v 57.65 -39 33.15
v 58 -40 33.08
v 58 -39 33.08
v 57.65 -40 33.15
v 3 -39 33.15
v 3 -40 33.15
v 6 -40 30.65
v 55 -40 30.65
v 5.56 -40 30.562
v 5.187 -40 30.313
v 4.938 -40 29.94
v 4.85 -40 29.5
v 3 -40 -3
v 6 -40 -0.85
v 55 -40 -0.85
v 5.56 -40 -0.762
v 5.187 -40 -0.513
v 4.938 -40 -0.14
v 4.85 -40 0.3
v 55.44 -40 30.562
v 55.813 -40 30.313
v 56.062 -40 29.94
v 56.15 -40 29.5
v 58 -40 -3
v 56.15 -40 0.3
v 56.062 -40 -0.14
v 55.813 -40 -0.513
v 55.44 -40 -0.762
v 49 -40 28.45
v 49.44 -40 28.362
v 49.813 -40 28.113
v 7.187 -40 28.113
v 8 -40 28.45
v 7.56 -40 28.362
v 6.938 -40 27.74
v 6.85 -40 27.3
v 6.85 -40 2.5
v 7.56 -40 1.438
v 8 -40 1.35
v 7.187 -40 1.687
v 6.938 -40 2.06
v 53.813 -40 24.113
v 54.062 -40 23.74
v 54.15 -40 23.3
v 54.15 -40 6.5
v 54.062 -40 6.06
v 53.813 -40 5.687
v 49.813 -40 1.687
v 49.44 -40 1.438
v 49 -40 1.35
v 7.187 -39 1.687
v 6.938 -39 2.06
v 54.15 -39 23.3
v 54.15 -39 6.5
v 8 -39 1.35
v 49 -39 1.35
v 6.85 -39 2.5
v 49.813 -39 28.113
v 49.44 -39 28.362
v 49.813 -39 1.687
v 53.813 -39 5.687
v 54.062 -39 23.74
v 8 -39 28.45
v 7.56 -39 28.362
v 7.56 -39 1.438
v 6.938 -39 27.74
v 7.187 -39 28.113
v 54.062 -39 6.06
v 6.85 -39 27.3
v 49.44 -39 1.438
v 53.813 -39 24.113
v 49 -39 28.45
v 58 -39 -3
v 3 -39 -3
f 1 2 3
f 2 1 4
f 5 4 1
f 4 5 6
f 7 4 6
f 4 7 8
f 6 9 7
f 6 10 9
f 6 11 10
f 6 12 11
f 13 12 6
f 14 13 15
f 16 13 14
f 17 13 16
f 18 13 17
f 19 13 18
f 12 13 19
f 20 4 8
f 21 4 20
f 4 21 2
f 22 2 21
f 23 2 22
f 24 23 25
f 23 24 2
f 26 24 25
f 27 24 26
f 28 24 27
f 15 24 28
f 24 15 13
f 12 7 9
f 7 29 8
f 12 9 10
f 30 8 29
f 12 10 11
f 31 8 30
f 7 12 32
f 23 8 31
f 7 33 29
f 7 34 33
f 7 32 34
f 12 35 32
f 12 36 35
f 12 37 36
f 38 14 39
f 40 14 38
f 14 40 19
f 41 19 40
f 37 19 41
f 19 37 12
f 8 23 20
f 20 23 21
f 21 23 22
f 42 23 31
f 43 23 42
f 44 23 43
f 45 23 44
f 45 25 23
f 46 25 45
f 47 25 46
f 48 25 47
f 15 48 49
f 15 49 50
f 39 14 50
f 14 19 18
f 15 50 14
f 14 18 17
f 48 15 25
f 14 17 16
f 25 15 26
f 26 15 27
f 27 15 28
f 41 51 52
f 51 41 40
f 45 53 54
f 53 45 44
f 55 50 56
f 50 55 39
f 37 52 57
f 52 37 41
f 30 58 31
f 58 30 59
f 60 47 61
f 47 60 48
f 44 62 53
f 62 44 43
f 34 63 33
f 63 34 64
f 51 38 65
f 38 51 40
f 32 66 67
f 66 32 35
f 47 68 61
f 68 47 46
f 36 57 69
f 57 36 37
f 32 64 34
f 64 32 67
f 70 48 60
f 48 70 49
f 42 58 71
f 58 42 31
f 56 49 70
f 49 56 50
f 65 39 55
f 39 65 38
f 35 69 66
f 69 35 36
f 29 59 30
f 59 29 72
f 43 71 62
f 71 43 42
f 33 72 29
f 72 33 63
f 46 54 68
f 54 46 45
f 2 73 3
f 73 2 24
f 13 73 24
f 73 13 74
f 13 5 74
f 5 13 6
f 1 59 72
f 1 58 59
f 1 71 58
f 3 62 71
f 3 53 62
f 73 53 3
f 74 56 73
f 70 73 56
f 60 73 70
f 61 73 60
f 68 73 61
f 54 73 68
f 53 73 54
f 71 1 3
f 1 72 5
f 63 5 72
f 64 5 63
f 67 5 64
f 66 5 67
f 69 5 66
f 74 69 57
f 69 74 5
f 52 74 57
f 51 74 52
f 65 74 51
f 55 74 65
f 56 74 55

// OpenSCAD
// file: xt.scad
e=.001;
$fn=16;

xt60_w=15.7;
xt60_h=8;
xt60f_d = 15.7;
xt60f_base_d = 8;
xt60_combined_d=24.1;
xt60_pitch=7;
xt60_chamfer=2.5;
xt60f_pin_d=5.7;
xt60m_pin_d=4.7;
xt60_pin_w=4.5;
xt60_hole_w=4.5;
xt60_corner=.5;

module xt_pins(width, height, pitch)
{
	for (p=[-pitch/2, pitch/2])
	translate([p,0,0])
	cylinder(h=height, r=width/2);
}

module xt_base(w, h, d, chamfer, corner, margin=0, e=0)
{
	w = w-2*corner;
	h = h-2*corner;
	r = corner+margin;
	translate([0,0,-e])
    linear_extrude(d+2*e)
	hull()
    for (p=[ [w/2,-h/2],
	         [-w/2+chamfer, -h/2],
	         [-w/2, -h/2+chamfer],
	         [-w/2, h/2-chamfer],
	         [-w/2+chamfer, h/2],
	         [w/2, h/2]
	])
	translate(p)
	circle(r);
}

module xt60_combined_shell_cutout(margin=0,f_margin=-1,m_margin=-1, e=0)
{
	b=1; 
	xt_base(xt60_w, xt60_h, xt60_combined_d, xt60_chamfer, xt60_corner, margin, e);
	if (f_margin > margin)
	hull()
	{
		xt_base(xt60_w, xt60_h, xt60f_base_d, xt60_chamfer, xt60_corner, f_margin, e);
		translate([0,0,xt60f_base_d])
		xt_base(xt60_w, xt60_h, f_margin-margin, xt60_chamfer, xt60_corner, margin, e);
	}
	if (m_margin > margin)
	hull()
	{
		translate([0,0,xt60f_base_d-(m_margin-margin)])
		xt_base(xt60_w, xt60_h, m_margin-margin, xt60_chamfer, xt60_corner, margin, e);
		translate([0,0,xt60f_base_d])
		xt_base(xt60_w, xt60_h, xt60_combined_d-xt60f_base_d, xt60_chamfer, xt60_corner, m_margin, e);
	}
}


module xt60_combined_cutout(margin=0,f_margin=-1,m_margin=-1, e=0)
{
	b=1; 
	xt60_combined_shell_cutout(margin,f_margin,m_margin, e);

	translate([0, 0, -xt60f_pin_d-margin])
	xt_pins(xt60_pin_w+margin*2, xt60f_pin_d+b+margin, xt60_pitch);

	translate([0, 0, xt60_combined_d-b])
	xt_pins(xt60_pin_w+margin*2, xt60m_pin_d+b+margin, xt60_pitch);
}

module xt60f_cutout(margin=0,f_margin=-1,m_margin=-1,e=0)
{
	translate([0,0,-xt60f_d])
	xt60_combined_cutout(margin,f_margin,m_margin,e);
}

module xt60f_shell_cutout(margin=0,f_margin=-1,m_margin=-1,e=0)
{
	translate([0,0,-xt60f_d])
	xt60_combined_shell_cutout(margin,f_margin,m_margin,e);
}

module xt60f()
{
	b=1;
	translate([0,0,-xt60f_d])
	{
		xt_base(xt60_w, xt60_h, xt60f_base_d, xt60_chamfer, xt60_corner, 0, e);

		translate([0,0,b])
		difference()
		{
			xt_base(xt60_w-2*xt60_corner, xt60_h-2*xt60_corner, xt60f_d-b, xt60_chamfer, xt60_corner, 0, e);
			xt_pins(xt60_hole_w, xt60f_d, xt60_pitch);

		}

		difference()
		{
			translate([0, 0, -xt60f_pin_d])
			xt_pins(xt60_pin_w, xt60f_pin_d+b, xt60_pitch);

			translate([0, 0, -xt60f_pin_d-b])
			xt_pins(xt60_pin_w*.8, xt60f_pin_d+b, xt60_pitch);
		}
	}
}

xt60f();
%xt60f_cutout(margin=.4,m_margin=1,e=e);
// file: power_shield.scad
use <utils.scad>
use <grid.scad>

use <mw_lrs.scad>
use <powerplug.scad>
use <xt.scad>

$fn=16;
e=.001;


margin=.15;
shield_thickness=1.;
shield_bottom=.6;

border_w=51;
border_h=31.2;
border_d=3.5;

w=47;
h=26.8;
d=22;
chamf=4;


flap_a_w=10;
flap_a_x=4;

flap_b_w=7;
flap_b_x=33;

flap_h=1;
flap_latch=.8;

corner=1;

module plug_keepout(margin=0, depth=39, e=0)
{
	$fn=16;

	d = .1+e;
	border_w = border_w-2*corner;
	border_h = border_h-2*corner;
	w = w-2*corner;
	h = h-2*corner;
	r = corner+margin;
	off = 16.5;

	color([.3,.3,.3])
	translate([corner,depth-.1,corner])
	rotate([90,0,0])
	{
		translate([(border_w-w)/2,0,-d])
		linear_extrude(d+e)
		hull()
		for (p=[ [off, 0],
		         [off, h],
		         [w-chamf, h],
		         [w, h-chamf],
		         [w, chamf],
		         [w- chamf, 0],
		])
		translate(p)
		circle(r);
	}
}

module plug_hull(margin, d, e=0)
{
	hull()
	{
		difference()
		{
		plug(margin=margin, extra_depth=5+shield_bottom);
		translate([-10,-10,-10])
		cube([100, 30, 100]);
		}
		plug_keepout(margin=margin, depth=d, e=0);
	}
	plug_keepout(margin=margin, depth=d, e=e);
	
}

inner_w=.8;

module power_shield()
{
color("red")
	union()
	{
	difference()
	{
		union()
		{
			plug_hull(margin=margin+shield_thickness, d=39);
		}
		union()
		{
		plug_hull(margin=margin, d=38, e=2);
		}
	}

	intersection()
	{
		plug_hull(margin=margin+shield_thickness/2, d=38.5, e=2);
		difference()
		{
			union()
			{
				translate([(border_w-w)/2+8.5-inner_w/2, 22, h/2-4-inner_w/2])
				cube([inner_w, 20, 20]);

				translate([(border_w-w)/2+8.5, 22, h/2-4-inner_w/2])
				cube([9., 17, inner_w]);

				translate([(border_w-w)/2+17.5-inner_w/2, 22, h/2-4-inner_w/2])
				cube([inner_w, 17, 10]);

				translate([(border_w-w)/2+15-inner_w/2, 38.4, h/2-4-inner_w/2])
				cube([2.5, shield_bottom, 10]);

				for (y=[0,h])
				for (x=[0,w-2])
				translate([(border_w-w)/2+x-5/sqrt(2)-inner_w/2, 22, y])
				rotate([0,45,0])
				cube([5,1,5]);

			}
			translate([(border_w-w)/2+6.5-inner_w/2, 21, h/2-6/2-inner_w/2])
			cube([5, 2, 5.5]);
		}
	}
}
}

power_shield();

//preview()
//plug();
// file: powerplug.scad
e=0.001;

border_w=51;
border_h=31.2;
border_d=3.5;

w=47;
h=26.8;
d=22;
chamf=4;


flap_a_w=10;
flap_a_x=4;

flap_b_w=7;
flap_b_x=33;

flap_h=1;
flap_latch=.8;

corner=1;

module plug(margin=0, extra_depth=0)
{
	$fn=16;

	d = d+extra_depth;
	border_w = border_w-2*corner;
	border_h = border_h-2*corner;
	w = w-2*corner;
	h = h-2*corner;
	r = corner+margin;

	color([.3,.3,.3])
	translate([corner,0,corner])
	rotate([90,0,0])
	{
		translate([0,(h-border_h)/2,0])
		linear_extrude(border_d+margin)
		hull()
		for(p=[ [0, 0],
		        [0, border_h],
		        [border_w, border_h],
		        [border_w, 0]
		])
		translate(p)
		circle(r);

		translate([(border_w-w)/2,0,-d])
		linear_extrude(d+e)
		hull()
		for (p=[ [0, 0],
		         [0, h],
		         [w-chamf, h],
		         [w, h-chamf],
		         [w, chamf],
		         [w- chamf, 0],
		])
		translate(p)
		circle(r);
	}
}

module plug_latch(margin=0)
{
	rotate([90,0,0])
	rotate([0,90,0])
	linear_extrude(9)
	{
		polygon([ [0, -1], [0, 1+margin], [9, margin]]);
	}
}

module plug_latches(margin=0)
{
	for (x=[9.5,32])
	for (y_flip=[-1, 1])
	translate([(border_w-w)/2+x,1.8, h/2])
	scale([1,1,y_flip])
	translate([0,0,h/2])
	plug_latch(margin);
}

plug();

plug_latches()

%plug(margin=.3);
// file: mw_lrs.scad
e=.001;
$fn=16;

mw_lrs_w=115;
mw_lrs_h=30;
mw_lrs_d=215;


mw_lrs_holes_pitch_d  = 150;
mw_lrs_holes_pitch_w  = 50;
mw_lrs_holes_height_h = 12.5;

mw_lrs_gap_h = 23;
mw_lrs_gap_d = 18.5;

mw_lrs_case_thickness = 1.6;

m4_thread = 4;

mw_lrs_screw_terminal_x=8.5;
mw_lrs_screw_terminal_w=88;
mw_lrs_screw_terminal_d=15;
mw_lrs_screw_terminal_h=15;
mw_lrs_screw_terminal_pitch = 9.5;
mw_lrs_screw_terminal_gap_w = 8;
mw_lrs_screw_terminal_gap_d = 14;
mw_lrs_screw_terminal_gap_z = 7;
mw_lrs_screw_terminal_gap_h = 6;

module mw_lrs_side_holes()
{
	translate( [0, 0, mw_lrs_holes_height_h] )
	for( r = [ 0, 180 ] )
	rotate( [0, r, 0] )
	for( y = [ (mw_lrs_d-mw_lrs_holes_pitch_d)/2, (mw_lrs_d+mw_lrs_holes_pitch_d)/2 ] )
	translate( [-mw_lrs_w/2, y, 0] )
	rotate( [0, 90, 0] )
	children();
}

module mw_lrs_bottom_holes()
{
	for( x = [ -mw_lrs_holes_pitch_w/2, mw_lrs_holes_pitch_w/2 ] )
	for( y = [ (mw_lrs_d-mw_lrs_holes_pitch_d)/2, (mw_lrs_d+mw_lrs_holes_pitch_d)/2 ] )
	translate( [x, y, 0] )
	children();
}

module mw_lrs_holes()
{
	mw_lrs_side_holes() children();
	mw_lrs_bottom_holes() children();
}

module mw_lrs_screw_terminal()
{
	colors = [
		"red", "red", "red",
		"black", "black", "black",
		"green", "blue", "brown",
	];
	b=1;
	translate([mw_lrs_screw_terminal_x, mw_lrs_case_thickness, mw_lrs_h-mw_lrs_gap_h-e])
	{
		difference()
		{
			translate([-mw_lrs_screw_terminal_w/2, 0, 0])
			cube([mw_lrs_screw_terminal_w, mw_lrs_screw_terminal_d, mw_lrs_screw_terminal_h+e]);
			for (i=[0:8])
			translate([(i-4)*9.5-mw_lrs_screw_terminal_gap_w/2, -b, mw_lrs_screw_terminal_gap_z])
			cube([mw_lrs_screw_terminal_gap_w, mw_lrs_screw_terminal_gap_d+b, mw_lrs_screw_terminal_gap_h]);
		}

		for (i=[0:8])
		translate([(i-4)*9.5-mw_lrs_screw_terminal_gap_w/2, -0, mw_lrs_screw_terminal_h])
		color(colors[i])
		cube([mw_lrs_screw_terminal_gap_w,mw_lrs_screw_terminal_gap_d,.1]);

	}
}

module mw_lrs_vents()
{
	b=1;
	hole=4;
	for (y = [36, 44, 52])
	for (i = [-1, 1])
	hull()
	{
		translate([i*(19/2+hole/2), y, mw_lrs_h-mw_lrs_case_thickness-b])
			cylinder(mw_lrs_case_thickness+2*b, r=hole/2);

		translate([i*(19/2+hole/2+33), y, mw_lrs_h-mw_lrs_case_thickness-b])
			cylinder(mw_lrs_case_thickness+2*b, r=hole/2);
	}

	translate([-mw_lrs_w/2+36.7, mw_lrs_d-47.45,mw_lrs_h-mw_lrs_case_thickness-b])
		cylinder(mw_lrs_case_thickness+2*b, r=50/2);
}

module mw_lrs_vents_keepout(h, margin=0)
{
	b=1;
	hole=4;
	hull()
	for (y = [36, 44, 52])
	for (i = [-1, 1])
	{
		translate([i*(19/2+hole/2), y, mw_lrs_h-b])
			cylinder(h+b, r=hole/2+margin);

		translate([i*(19/2+hole/2+33), y, mw_lrs_h-b])
			cylinder(h+b, r=hole/2+margin);
	}

	translate([-mw_lrs_w/2+36.7, mw_lrs_d-47.45,mw_lrs_h-b])
		cylinder(h+b, r=50/2);
}

module mw_lrs()
{
	b=1; 

	union()
	{
		color([.75,.75,.75])
		difference()
		{

			translate([-mw_lrs_w/2,0,0])
			cube([mw_lrs_w, mw_lrs_d, mw_lrs_h]);

			union()
			{
				translate([-mw_lrs_w/2+mw_lrs_case_thickness, -b, mw_lrs_h-mw_lrs_gap_h] )
				cube( [ mw_lrs_w-2*mw_lrs_case_thickness, b+mw_lrs_gap_d, mw_lrs_gap_h+b] );

				translate([-mw_lrs_w/2+mw_lrs_case_thickness, mw_lrs_gap_d-e, mw_lrs_h-mw_lrs_gap_h] )
				cube( [ mw_lrs_w-2*mw_lrs_case_thickness, mw_lrs_d-mw_lrs_gap_d+e-mw_lrs_case_thickness, mw_lrs_gap_h-mw_lrs_case_thickness] );

				mw_lrs_vents();

				mw_lrs_holes()
				{
					translate([0,0,-e])
					cylinder(h=5+e, r=m4_thread/2);
				}
			}
		}
		color([.1, .3, .1])
		translate([-mw_lrs_w/2+mw_lrs_case_thickness, 0, mw_lrs_h-mw_lrs_gap_h-e])
		cube([mw_lrs_w-2*mw_lrs_case_thickness, mw_lrs_d-mw_lrs_case_thickness, e+.1]);
		mw_lrs_screw_terminal();
	}
}

module mw_lrs_keepout(margin=0, e=0)
{
	b=1; 

	w=mw_lrs_w+margin*2;
	d=mw_lrs_d+margin*2;
	h=mw_lrs_h+margin*2;

	translate([-w/2,-margin,-margin])
	cube([w, d, h]);
}

mw_lrs();
%mw_lrs_keepout(margin=.4);

module m4_hole(h)
{
	translate([0,0,-h])
	cylinder(h=h+e, r=m4_thread/2);
}

%mw_lrs_holes()
m4_hole(10);
// file: grid.scad
module bars(width, height, n, pitch, bar_width)
{
	for (i=[0:n-1])
		translate([0, (i-(n-1)/2)*pitch-bar_width/2, 0])
			cube([width, bar_width, height]);
}

module grid(width, depth, height, n_rows, n_cols, pitch=10, x_pitch=-1, y_pitch=-1, bar_width=1, x_bar_width=-1, y_bar_width=-1)
{
	x_pitch = x_pitch > 0 ? x_pitch : pitch;
	y_pitch = y_pitch > 0 ? y_pitch : pitch;
	x_bar_width = x_bar_width > 0 ? x_bar_width : bar_width;
	y_bar_width = y_bar_width > 0 ? y_bar_width : bar_width;

	translate( [0, depth/2, 0] )
		bars( width, height, n_rows, y_pitch, y_bar_width );
	translate( [width/2, 0, 0] )
		rotate([0,0,90])
			bars( depth, height, n_cols, x_pitch, x_bar_width) ;
}

grid(100, 50, 1, 4, 8);
// file: utils.scad
module xz_toward_y()
{
	scale([1, 1, -1])
	rotate([-90,0,0])
	children();
}

module anchor(dim, anchor=[0,0,0])
{
	translate([-(1+anchor.x)*dim.x/2, -(1+anchor.y)*dim.y/2, -(1+anchor.z)*dim.z/2])
	children();
}

module block(dim, anchor=[0,0,0])
{
	anchor(dim, anchor)
	cube(dim);
}

module rounded_block_z(dim, anchor=[0,0,0], r=0)
{
	anchor(dim, anchor)
	linear_extrude(dim.z)
	hull()
	for (p=[ [r,r], [dim.x-r, r], [dim.x-r, dim.y-r], [r, dim.y-r] ] )
	translate(p)
	circle(r);
}

module rounded_block_y(dim, anchor=[0,0,0], r=0)
{
	anchor(dim, anchor)
	xz_toward_y()
	linear_extrude(dim.y)
	hull()
	for (p=[ [r,r], [dim.x-r, r], [dim.x-r, dim.z-r], [r, dim.z-r] ] )
	translate(p)
	circle(r);
}

module chamfer_block_y(dim, anchor=[0,0,0], r=0)
{
	anchor(dim, anchor)
	hull()
	{
		translate([r,0,0])
		cube([dim.x-r*2, dim.y, dim.z]);

		translate([0,0,r])
		cube([dim.x, dim.y, dim.z-r*2]);
	}
}

module chamfer_block_z(dim, anchor=[0,0,0], r=0)
{
	anchor(dim, anchor)
	hull()
	{
		translate([r,0,0])
		cube([dim.x-r*2, dim.y, dim.z]);

		translate([0,r,0])
		cube([dim.x, dim.y-r*2, dim.z]);
	}
}

module chamfer_block(dim, anchor=[0,0,0], r=0)
{
	anchor(dim, anchor)
	hull()
	{
		translate([r,r,0])
		cube([dim.x-r*2, dim.y-r*2, dim.z]);

		translate([r,0,r])
		cube([dim.x-r*2, dim.y, dim.z-r*2]);

		translate([0,r,r])
		cube([dim.x, dim.y-r*2, dim.z-r*2]);
	}
}

module at_grid(c,r,pitch,anchor=[0,0,0])
{
	dim=[(c-1)*pitch,(r-1)*pitch,1];
	a=[anchor[0],anchor[1],-1];
	anchor(dim,a)
	for(x=[0:c-1])
	for(y=[0:r-1])
	translate([x*pitch,y*pitch,0])
	children();
}

module ngon_outer(n,h,r)
{
	cylinder(h,r=r, $fn=n);
}

module ngon_inner(n,h,r)
{
	a=360/n/2;
	r_cyl = r/cos(a);
	rotate([0,0,a])
	cylinder(h,r=r_cyl, $fn=n);
}


module ngon_cone_outer(n,h,r1,r2)
{
	cylinder(h,r1=r1,r2=r2, $fn=n);
}

module ngon_cone_inner(n,h,r1,r2)
{
	a=360/n/2;
	r1_cyl = r1/cos(a);
	r2_cyl = r2/cos(a);
	rotate([0,0,a])
	cylinder(h,r1=r1_cyl,r2=r2_cyl, $fn=n);
}

module preview()
{
	if ($preview)
	children();
}
// file: cover.scad
use <utils.scad>
use <grid.scad>

use <mw_lrs.scad>
use <powerplug.scad>
use <power_shield.scad>
use <xt.scad>

$fn=16;
e=.001;

depth=40;

xt60_loc = [ [-47,-depth, 15], [-27,-depth, 15], [-7,-depth, 15] ];
plug_loc = [5,-depth, 1.5];

margin = 0.15;

xt60_margin = 0.25;
xt60m_margin = 1;

xt60_thickness = 1.5;
plug_thickness = 2;

case_w_inner = 115+2*margin;
case_h_inner = 30+2*margin;
case_thickness = 3;
case_w = case_w_inner + 2*case_thickness;
case_d = depth + 40;
case_h = case_h_inner + 2*case_thickness;

case_dim = [case_w, case_d, case_h];
case_dim_inner = [case_w_inner, case_d, case_h_inner];
case_dim_inside = [(case_w_inner+case_w)/2, case_d, (case_h_inner+case_h)/2];

bump_corner=(case_thickness+margin)*2.5;


front = [0,-1, 0];
bottom_front = [0,-1,-1];

grid_rows = 3;
grid_cols = 11;
grid_pitch = 10;
grid_thickness = .8;
grid_depth=12;
grid_xoff =-2;

screw_thread=3;
screw_hole_r=(screw_thread*.9)/2;
screw_hole_border=2;

mw_lrs_gap_d = 18.5;

preview()
{
	mw_lrs();

	for ( p = xt60_loc )
	translate(p)
	rotate([90,90,0])
	xt60f();

	translate(plug_loc)
	plug();

	translate(plug_loc)
	power_shield();
}

module cutout()
{
	mw_lrs_keepout(margin=margin);

	for ( p = xt60_loc )
	translate(p)
	translate([0,0,0])
	rotate([90,90,0])
	xt60f_cutout(margin=xt60_margin,m_margin=xt60m_margin,e=e);

	translate(plug_loc)
	{
	plug(margin=margin, , extra_depth=-2);
	plug_latches(margin=margin);
	}

	mw_lrs_holes()
	m4_hole(10);

	mw_lrs_vents_keepout(h=10, margin=1);
}

module shell()
{
	difference()
	{
		translate([0, -depth, -case_thickness-margin])
		rounded_block_y(case_dim, bottom_front, r=case_thickness);

		translate([0, -depth+case_thickness, -margin])
		chamfer_block([case_w_inner, case_d, case_h_inner], bottom_front, r=case_thickness);
	}
}

module round_corner(w)
{
	difference()
	{
		rotate([90,0,0])
		cylinder(w, r1=w, r2=0);
		union()
		{
			translate([-w-e,-w,-w])
			cube([w,w*2,w*2]);

			translate([-w,-w,-w-e])
			cube([w*2,w*2,w]);
		}
	}
}


module bump_corner(w)
{
	round_corner(w, $fn=4);
}

module front_grid()
{
	translate([0, -depth+e,-case_thickness/2])
	xz_toward_y()
	anchor(case_dim_inside, bottom_front)
	grid(case_dim_inside.x, case_dim_inside.z, case_thickness+grid_depth-e, grid_rows, grid_cols, pitch=grid_pitch, bar_width=grid_thickness, x_off=grid_xoff, y_off=0);
}

module at_panel_screws()
{
	for (x=[ -12, -42 ])
	for (z=[ 5, 25 ])
	translate([x,-depth, z])
	children();
}


module cover()
{
	difference()
	{
		union()
		{
			shell();
	
			intersection()
			{
				union()
				{
					front_grid();
					translate(plug_loc)
					plug(margin=margin+plug_thickness, extra_depth=-2);
	
					for ( p = xt60_loc )
					translate(p)
					rotate([90,90,0])
					xt60f_shell_cutout(margin=  xt60_margin+xt60_thickness,
					                 m_margin=xt60m_margin+xt60_thickness);

					at_panel_screws()
					translate([0,-e, 0])
					xz_toward_y()
					linear_extrude(15.7+e)
					circle(screw_hole_r+screw_hole_border);

				}
				translate([0, -depth+e, case_h_inner/2])
				block(case_dim_inside, front);
			}

			translate([0,-margin,case_h_inner/2-margin])
			for (x=[1, -1])
			for (z=[1, -1])
			scale([x, 1, z])
			translate([-case_w_inner/2, 0,-case_h_inner/2])
			bump_corner(bump_corner);
		}
		union()
		{
			cutout();

			at_panel_screws()
			translate([0,case_thickness+e, 0])
			xz_toward_y()
			linear_extrude(15.7)
			circle(screw_hole_r);
		}
	}
}

#cover();
// main file
use <cover.scad>

color("red")
intersection()
{
	translate([3,-40,-3])
	cube([55, 1, 40]);
	cover();
}
